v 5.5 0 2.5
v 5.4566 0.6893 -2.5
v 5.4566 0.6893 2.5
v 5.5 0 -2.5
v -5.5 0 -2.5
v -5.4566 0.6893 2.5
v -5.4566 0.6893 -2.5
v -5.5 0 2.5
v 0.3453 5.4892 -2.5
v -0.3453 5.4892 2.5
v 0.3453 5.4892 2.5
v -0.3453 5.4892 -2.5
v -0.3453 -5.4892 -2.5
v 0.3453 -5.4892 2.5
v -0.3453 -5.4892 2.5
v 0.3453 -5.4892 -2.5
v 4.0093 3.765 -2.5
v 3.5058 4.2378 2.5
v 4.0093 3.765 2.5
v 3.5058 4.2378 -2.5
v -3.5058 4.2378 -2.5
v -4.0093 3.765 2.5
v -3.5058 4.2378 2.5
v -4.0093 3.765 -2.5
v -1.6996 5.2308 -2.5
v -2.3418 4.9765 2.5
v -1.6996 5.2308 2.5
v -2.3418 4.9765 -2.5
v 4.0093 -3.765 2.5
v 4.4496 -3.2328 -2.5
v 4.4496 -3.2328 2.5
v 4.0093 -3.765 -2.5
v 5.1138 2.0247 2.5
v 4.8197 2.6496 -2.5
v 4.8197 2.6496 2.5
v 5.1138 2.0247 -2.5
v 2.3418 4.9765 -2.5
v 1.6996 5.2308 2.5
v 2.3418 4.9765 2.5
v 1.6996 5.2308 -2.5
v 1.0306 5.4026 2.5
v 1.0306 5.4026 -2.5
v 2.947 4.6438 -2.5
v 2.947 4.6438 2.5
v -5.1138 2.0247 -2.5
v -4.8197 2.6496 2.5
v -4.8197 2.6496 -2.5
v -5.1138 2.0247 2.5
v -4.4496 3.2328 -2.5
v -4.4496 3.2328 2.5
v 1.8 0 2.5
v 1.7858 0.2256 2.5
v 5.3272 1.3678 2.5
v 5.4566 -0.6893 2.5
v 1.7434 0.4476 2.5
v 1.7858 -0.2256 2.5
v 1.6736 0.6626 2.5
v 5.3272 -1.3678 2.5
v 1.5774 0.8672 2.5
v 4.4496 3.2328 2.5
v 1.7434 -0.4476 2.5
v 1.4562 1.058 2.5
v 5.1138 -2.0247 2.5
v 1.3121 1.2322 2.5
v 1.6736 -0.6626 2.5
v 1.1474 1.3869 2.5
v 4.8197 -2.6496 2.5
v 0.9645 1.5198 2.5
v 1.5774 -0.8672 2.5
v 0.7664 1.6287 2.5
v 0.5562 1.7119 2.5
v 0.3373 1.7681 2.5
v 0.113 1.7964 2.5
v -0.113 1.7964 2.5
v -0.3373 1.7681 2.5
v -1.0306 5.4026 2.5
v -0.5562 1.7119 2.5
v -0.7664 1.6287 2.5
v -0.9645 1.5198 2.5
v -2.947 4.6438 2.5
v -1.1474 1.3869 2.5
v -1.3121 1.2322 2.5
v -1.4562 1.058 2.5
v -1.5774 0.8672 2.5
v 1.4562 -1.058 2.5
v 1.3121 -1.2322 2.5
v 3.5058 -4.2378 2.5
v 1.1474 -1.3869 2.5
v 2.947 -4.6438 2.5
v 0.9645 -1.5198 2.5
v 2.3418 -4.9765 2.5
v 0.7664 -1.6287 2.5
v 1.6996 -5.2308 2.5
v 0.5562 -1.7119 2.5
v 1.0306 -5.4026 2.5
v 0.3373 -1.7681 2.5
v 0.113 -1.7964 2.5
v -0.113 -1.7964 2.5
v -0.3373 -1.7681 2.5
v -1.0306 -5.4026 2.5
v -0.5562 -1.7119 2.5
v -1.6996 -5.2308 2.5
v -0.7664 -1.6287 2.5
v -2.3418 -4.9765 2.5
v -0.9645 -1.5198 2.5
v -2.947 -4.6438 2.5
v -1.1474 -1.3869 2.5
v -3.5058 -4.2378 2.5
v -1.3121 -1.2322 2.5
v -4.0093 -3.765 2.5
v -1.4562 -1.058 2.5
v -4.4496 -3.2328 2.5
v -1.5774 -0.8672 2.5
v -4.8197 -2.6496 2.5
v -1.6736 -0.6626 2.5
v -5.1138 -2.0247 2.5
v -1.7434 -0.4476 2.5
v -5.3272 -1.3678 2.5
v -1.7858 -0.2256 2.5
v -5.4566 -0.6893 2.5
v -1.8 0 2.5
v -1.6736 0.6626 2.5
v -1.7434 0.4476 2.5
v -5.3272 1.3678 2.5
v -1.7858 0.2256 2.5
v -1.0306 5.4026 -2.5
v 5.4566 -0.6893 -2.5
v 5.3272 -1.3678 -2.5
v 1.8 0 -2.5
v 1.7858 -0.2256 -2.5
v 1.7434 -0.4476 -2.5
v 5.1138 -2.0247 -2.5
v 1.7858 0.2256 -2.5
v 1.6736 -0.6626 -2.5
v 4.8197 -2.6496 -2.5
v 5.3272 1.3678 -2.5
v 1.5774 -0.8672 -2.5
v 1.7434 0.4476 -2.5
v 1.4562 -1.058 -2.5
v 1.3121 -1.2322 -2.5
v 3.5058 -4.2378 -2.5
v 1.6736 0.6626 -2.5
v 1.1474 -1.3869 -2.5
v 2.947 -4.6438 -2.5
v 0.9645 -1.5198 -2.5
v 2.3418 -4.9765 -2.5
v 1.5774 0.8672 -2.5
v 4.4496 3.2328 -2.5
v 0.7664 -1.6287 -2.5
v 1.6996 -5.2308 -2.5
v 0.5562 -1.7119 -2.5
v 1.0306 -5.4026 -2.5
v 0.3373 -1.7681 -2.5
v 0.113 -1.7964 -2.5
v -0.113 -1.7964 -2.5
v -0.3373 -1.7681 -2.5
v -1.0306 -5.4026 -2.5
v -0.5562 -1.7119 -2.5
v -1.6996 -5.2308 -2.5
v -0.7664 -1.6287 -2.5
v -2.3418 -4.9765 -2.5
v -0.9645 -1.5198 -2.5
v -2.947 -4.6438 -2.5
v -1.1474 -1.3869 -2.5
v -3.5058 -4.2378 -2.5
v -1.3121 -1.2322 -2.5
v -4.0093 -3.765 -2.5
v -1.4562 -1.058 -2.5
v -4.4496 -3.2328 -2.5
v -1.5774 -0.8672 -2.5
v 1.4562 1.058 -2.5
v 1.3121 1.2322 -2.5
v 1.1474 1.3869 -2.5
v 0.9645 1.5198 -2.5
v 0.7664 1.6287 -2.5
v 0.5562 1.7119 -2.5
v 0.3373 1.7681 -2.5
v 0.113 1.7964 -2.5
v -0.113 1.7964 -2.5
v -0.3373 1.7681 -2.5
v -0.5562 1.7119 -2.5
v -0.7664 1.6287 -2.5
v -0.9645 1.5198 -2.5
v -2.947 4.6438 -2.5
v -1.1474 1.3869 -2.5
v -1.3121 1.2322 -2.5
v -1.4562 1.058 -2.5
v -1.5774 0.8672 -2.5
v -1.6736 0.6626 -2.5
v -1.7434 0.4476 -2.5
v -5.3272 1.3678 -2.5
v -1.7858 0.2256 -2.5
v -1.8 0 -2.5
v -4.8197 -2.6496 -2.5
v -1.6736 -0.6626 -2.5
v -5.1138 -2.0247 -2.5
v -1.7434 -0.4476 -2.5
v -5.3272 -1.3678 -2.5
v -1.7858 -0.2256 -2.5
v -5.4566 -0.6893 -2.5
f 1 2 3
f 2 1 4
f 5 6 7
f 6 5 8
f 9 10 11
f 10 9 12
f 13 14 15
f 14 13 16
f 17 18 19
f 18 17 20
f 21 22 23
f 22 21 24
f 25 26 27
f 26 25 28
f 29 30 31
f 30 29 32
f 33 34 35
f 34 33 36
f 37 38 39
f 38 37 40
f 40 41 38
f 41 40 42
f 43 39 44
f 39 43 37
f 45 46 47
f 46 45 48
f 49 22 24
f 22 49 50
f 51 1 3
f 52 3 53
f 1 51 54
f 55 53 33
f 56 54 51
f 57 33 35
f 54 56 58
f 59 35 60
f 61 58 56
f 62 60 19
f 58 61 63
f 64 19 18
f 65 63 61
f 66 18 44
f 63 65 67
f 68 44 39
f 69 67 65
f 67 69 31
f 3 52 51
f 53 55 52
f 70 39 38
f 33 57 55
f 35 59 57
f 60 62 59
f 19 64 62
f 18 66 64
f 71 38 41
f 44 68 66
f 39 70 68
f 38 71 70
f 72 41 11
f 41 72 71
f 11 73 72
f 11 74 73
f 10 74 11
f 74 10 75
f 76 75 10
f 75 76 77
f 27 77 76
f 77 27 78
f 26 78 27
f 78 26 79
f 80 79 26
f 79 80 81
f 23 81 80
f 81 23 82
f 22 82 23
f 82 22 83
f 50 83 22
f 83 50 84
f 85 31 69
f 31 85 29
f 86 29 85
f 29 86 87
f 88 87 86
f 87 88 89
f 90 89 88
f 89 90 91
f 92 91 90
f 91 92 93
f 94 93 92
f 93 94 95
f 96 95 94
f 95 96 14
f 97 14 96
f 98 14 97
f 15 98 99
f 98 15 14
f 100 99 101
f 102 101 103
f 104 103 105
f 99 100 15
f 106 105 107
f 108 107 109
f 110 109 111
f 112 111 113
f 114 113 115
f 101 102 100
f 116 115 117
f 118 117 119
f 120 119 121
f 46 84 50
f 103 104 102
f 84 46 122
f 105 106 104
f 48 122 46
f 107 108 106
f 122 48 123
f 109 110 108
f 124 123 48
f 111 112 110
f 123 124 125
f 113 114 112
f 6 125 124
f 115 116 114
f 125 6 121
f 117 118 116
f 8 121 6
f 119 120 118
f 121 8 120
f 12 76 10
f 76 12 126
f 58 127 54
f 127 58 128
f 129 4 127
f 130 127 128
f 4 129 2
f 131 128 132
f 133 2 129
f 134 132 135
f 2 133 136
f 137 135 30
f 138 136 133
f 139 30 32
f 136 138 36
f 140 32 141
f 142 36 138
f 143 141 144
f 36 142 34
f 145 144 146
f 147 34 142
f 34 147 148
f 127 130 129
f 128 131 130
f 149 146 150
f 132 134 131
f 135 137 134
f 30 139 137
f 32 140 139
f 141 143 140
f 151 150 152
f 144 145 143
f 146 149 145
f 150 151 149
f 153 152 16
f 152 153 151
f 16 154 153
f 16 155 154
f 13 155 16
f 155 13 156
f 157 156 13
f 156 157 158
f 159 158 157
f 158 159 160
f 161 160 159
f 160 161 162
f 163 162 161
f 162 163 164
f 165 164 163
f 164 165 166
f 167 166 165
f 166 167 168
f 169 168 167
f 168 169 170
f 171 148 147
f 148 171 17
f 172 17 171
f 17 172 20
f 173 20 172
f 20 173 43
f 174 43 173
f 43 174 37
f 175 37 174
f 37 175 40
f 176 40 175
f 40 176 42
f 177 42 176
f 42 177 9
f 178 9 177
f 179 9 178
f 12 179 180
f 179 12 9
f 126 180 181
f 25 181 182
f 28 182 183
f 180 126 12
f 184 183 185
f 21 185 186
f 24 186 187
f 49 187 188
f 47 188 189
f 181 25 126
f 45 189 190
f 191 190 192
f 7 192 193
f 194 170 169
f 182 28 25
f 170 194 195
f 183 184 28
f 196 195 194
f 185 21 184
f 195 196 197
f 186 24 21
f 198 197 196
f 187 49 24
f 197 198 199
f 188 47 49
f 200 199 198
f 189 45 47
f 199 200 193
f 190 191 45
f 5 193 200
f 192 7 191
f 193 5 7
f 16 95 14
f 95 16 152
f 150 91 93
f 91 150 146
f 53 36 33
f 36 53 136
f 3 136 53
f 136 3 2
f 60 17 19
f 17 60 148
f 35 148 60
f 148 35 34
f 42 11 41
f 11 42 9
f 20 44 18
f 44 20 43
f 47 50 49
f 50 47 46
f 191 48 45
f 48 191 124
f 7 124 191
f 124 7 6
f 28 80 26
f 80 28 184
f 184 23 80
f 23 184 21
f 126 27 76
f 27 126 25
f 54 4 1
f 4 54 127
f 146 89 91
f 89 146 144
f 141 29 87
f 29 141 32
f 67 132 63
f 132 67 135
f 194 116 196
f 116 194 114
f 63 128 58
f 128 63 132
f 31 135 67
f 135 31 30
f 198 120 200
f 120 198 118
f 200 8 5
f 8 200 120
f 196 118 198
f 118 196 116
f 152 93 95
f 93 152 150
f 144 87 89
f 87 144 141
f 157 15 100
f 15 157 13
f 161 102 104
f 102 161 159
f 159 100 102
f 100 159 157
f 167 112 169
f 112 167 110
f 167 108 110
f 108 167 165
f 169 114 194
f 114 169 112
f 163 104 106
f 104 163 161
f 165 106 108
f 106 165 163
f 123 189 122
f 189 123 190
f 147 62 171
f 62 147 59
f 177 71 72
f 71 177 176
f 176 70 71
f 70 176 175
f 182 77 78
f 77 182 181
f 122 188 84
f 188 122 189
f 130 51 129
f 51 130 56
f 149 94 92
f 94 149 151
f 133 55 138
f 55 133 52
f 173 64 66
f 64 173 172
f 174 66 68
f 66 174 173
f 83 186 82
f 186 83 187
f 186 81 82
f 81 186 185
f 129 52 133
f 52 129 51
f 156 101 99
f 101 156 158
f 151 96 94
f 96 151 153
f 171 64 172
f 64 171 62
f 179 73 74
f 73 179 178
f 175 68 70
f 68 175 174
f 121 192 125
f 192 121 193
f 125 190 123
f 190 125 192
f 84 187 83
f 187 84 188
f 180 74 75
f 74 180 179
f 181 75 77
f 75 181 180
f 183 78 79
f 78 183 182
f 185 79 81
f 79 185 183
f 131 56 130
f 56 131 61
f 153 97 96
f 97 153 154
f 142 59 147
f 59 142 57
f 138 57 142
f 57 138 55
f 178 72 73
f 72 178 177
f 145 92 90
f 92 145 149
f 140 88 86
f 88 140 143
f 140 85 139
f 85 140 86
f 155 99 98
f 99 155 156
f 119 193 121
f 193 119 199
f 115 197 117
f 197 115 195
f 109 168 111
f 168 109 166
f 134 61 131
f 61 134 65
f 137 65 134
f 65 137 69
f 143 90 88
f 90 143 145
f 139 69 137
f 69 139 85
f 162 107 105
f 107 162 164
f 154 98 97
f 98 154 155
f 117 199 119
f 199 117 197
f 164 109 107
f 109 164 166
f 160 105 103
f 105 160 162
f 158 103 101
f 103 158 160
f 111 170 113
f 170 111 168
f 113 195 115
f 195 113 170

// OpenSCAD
$fn = 50;


difference() {
	union() {
		translate(v = [0, 0, -2.5000000000]) {
			cylinder(h = 5, r = 5.5000000000);
		}
	}
	union() {
		translate(v = [0, 0, -100.0000000000]) {
			cylinder(h = 200, r = 1.8000000000);
		}
	}
}
